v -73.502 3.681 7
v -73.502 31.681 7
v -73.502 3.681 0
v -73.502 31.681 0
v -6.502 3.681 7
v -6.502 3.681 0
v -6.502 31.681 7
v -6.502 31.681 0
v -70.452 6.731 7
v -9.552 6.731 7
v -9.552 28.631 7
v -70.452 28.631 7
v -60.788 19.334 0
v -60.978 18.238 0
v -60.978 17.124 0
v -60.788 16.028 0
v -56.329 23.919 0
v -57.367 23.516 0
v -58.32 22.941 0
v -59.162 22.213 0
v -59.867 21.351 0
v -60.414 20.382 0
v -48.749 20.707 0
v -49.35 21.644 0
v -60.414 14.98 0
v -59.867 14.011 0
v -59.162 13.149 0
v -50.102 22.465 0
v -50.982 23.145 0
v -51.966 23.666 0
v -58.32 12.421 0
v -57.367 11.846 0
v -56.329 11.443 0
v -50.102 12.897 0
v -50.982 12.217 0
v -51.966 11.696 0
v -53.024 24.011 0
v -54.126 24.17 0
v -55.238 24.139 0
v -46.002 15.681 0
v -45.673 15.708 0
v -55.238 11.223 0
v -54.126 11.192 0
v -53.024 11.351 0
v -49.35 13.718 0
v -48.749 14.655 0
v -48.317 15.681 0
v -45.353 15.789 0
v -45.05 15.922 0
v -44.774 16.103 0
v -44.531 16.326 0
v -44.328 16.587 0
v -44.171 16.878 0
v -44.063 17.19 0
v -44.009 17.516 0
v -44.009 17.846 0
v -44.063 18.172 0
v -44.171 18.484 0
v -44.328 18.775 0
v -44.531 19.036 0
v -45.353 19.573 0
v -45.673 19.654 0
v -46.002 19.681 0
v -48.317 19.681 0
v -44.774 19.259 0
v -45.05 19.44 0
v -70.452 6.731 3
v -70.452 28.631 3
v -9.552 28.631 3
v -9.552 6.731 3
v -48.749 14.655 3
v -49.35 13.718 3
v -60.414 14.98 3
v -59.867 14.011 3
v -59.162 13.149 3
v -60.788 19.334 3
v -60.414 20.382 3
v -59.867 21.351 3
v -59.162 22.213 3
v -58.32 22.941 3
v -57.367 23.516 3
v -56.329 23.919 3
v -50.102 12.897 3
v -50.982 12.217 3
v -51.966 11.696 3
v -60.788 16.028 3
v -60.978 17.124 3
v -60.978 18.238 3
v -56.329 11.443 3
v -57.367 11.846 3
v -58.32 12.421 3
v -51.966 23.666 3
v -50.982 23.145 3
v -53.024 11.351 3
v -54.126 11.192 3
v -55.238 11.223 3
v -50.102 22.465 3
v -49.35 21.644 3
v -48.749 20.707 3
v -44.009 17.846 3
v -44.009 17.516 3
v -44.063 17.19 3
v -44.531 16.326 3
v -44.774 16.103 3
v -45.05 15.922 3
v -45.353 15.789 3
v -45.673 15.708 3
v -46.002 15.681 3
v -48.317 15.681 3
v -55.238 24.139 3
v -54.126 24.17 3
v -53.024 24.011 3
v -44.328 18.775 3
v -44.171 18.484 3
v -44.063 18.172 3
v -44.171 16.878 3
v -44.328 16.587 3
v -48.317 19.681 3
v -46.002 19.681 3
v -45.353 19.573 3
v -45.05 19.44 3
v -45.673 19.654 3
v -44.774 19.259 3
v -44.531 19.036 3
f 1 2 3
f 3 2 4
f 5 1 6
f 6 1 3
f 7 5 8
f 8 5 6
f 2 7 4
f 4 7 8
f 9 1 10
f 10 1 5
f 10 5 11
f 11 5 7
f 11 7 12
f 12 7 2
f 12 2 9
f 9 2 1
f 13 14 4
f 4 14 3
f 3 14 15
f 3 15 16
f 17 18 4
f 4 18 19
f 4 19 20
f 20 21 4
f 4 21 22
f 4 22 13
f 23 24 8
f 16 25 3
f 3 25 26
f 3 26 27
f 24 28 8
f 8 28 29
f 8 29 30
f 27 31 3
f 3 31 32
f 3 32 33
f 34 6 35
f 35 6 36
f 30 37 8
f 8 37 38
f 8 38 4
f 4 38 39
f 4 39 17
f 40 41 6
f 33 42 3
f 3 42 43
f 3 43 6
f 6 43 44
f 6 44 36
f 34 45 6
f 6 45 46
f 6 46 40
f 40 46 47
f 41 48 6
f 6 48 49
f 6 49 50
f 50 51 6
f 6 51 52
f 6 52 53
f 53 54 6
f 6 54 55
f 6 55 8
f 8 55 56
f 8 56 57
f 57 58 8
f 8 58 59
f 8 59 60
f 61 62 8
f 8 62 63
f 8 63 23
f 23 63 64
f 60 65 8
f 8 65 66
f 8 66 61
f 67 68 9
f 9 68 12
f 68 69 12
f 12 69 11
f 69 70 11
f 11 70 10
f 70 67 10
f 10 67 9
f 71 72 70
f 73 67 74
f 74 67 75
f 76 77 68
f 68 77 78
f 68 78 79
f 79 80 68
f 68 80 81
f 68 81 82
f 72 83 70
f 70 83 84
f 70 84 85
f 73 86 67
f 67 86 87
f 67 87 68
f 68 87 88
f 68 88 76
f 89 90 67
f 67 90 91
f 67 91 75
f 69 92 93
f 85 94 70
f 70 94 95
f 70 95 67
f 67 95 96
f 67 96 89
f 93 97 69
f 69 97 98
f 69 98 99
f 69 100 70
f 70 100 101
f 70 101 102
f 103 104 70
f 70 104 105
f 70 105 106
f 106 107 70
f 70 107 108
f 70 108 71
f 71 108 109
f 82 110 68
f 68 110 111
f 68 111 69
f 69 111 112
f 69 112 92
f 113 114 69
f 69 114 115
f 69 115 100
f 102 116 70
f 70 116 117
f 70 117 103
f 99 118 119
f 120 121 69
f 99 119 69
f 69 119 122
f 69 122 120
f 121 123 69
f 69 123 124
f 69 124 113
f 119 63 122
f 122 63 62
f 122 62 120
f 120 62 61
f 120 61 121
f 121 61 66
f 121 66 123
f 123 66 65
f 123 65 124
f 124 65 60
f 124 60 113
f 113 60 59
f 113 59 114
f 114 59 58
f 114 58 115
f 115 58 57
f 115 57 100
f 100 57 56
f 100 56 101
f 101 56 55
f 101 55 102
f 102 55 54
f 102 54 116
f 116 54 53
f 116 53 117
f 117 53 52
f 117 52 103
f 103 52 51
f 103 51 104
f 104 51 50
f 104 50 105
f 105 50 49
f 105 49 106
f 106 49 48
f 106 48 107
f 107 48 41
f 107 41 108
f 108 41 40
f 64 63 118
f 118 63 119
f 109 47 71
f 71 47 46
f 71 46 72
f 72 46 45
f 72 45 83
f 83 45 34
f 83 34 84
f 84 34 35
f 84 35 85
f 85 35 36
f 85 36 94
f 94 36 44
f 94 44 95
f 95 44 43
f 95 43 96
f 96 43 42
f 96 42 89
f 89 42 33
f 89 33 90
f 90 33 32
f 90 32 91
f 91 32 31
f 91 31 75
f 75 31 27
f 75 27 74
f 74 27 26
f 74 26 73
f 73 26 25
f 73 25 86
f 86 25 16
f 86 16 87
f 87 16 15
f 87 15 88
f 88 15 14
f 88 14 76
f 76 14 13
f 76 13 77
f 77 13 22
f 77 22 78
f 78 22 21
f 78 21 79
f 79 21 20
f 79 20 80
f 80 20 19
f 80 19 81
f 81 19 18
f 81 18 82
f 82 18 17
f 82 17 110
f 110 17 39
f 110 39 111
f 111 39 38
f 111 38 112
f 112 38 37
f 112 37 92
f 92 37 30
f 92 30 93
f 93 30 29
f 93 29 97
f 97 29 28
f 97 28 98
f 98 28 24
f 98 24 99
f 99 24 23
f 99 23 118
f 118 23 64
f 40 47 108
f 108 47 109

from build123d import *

# Parameters (mm, degrees)
CROQUIS1_W              = 67
CROQUIS1_H              = 28
SALIENTE_EXTRUIR1_DEPTH = 7
CROQUIS2_W              = 60.9
CROQUIS2_H              = 21.9
CORTAR_EXTRUIR1_DEPTH   = 4
CORTAR_EXTRUIR5_DEPTH   = 3


with BuildPart() as part:
    # Croquis1 → Saliente-Extruir1 (new body)
    with BuildSketch(Plane.XY):
        with Locations((-40.002156686, 17.680995475)):
            Rectangle(CROQUIS1_W, CROQUIS1_H)
    extrude(amount=SALIENTE_EXTRUIR1_DEPTH)

    # Croquis2 → Cortar-Extruir1 (cut)
    with BuildSketch(Plane.XY.offset(7)):
        with Locations((-40.002156686, 17.680995475)):
            Rectangle(CROQUIS2_W, CROQUIS2_H)
    extrude(amount=-CORTAR_EXTRUIR1_DEPTH, mode=Mode.SUBTRACT)

    # Croquis6 → Cortar-Extruir5 (cut)
    with BuildSketch(Plane(origin=(0, 0, 0), x_dir=(-1, 0, 0), z_dir=(0, 0, -1))):
        with BuildLine():
            Line((46.002156686, 15.680995475), (48.317498248, 15.680995475))
            ThreePointArc((48.317498248, 15.680995475), (61.002156686, 17.680995475), (48.317498248, 19.680995475))
            Line((48.317498248, 19.680995475), (46.002156686, 19.680995475))
            ThreePointArc((46.002156686, 19.680995475), (44.002156686, 17.680995475), (46.002156686, 15.680995475))
        make_face()
    extrude(amount=-CORTAR_EXTRUIR5_DEPTH, mode=Mode.SUBTRACT)


solid = part.part
